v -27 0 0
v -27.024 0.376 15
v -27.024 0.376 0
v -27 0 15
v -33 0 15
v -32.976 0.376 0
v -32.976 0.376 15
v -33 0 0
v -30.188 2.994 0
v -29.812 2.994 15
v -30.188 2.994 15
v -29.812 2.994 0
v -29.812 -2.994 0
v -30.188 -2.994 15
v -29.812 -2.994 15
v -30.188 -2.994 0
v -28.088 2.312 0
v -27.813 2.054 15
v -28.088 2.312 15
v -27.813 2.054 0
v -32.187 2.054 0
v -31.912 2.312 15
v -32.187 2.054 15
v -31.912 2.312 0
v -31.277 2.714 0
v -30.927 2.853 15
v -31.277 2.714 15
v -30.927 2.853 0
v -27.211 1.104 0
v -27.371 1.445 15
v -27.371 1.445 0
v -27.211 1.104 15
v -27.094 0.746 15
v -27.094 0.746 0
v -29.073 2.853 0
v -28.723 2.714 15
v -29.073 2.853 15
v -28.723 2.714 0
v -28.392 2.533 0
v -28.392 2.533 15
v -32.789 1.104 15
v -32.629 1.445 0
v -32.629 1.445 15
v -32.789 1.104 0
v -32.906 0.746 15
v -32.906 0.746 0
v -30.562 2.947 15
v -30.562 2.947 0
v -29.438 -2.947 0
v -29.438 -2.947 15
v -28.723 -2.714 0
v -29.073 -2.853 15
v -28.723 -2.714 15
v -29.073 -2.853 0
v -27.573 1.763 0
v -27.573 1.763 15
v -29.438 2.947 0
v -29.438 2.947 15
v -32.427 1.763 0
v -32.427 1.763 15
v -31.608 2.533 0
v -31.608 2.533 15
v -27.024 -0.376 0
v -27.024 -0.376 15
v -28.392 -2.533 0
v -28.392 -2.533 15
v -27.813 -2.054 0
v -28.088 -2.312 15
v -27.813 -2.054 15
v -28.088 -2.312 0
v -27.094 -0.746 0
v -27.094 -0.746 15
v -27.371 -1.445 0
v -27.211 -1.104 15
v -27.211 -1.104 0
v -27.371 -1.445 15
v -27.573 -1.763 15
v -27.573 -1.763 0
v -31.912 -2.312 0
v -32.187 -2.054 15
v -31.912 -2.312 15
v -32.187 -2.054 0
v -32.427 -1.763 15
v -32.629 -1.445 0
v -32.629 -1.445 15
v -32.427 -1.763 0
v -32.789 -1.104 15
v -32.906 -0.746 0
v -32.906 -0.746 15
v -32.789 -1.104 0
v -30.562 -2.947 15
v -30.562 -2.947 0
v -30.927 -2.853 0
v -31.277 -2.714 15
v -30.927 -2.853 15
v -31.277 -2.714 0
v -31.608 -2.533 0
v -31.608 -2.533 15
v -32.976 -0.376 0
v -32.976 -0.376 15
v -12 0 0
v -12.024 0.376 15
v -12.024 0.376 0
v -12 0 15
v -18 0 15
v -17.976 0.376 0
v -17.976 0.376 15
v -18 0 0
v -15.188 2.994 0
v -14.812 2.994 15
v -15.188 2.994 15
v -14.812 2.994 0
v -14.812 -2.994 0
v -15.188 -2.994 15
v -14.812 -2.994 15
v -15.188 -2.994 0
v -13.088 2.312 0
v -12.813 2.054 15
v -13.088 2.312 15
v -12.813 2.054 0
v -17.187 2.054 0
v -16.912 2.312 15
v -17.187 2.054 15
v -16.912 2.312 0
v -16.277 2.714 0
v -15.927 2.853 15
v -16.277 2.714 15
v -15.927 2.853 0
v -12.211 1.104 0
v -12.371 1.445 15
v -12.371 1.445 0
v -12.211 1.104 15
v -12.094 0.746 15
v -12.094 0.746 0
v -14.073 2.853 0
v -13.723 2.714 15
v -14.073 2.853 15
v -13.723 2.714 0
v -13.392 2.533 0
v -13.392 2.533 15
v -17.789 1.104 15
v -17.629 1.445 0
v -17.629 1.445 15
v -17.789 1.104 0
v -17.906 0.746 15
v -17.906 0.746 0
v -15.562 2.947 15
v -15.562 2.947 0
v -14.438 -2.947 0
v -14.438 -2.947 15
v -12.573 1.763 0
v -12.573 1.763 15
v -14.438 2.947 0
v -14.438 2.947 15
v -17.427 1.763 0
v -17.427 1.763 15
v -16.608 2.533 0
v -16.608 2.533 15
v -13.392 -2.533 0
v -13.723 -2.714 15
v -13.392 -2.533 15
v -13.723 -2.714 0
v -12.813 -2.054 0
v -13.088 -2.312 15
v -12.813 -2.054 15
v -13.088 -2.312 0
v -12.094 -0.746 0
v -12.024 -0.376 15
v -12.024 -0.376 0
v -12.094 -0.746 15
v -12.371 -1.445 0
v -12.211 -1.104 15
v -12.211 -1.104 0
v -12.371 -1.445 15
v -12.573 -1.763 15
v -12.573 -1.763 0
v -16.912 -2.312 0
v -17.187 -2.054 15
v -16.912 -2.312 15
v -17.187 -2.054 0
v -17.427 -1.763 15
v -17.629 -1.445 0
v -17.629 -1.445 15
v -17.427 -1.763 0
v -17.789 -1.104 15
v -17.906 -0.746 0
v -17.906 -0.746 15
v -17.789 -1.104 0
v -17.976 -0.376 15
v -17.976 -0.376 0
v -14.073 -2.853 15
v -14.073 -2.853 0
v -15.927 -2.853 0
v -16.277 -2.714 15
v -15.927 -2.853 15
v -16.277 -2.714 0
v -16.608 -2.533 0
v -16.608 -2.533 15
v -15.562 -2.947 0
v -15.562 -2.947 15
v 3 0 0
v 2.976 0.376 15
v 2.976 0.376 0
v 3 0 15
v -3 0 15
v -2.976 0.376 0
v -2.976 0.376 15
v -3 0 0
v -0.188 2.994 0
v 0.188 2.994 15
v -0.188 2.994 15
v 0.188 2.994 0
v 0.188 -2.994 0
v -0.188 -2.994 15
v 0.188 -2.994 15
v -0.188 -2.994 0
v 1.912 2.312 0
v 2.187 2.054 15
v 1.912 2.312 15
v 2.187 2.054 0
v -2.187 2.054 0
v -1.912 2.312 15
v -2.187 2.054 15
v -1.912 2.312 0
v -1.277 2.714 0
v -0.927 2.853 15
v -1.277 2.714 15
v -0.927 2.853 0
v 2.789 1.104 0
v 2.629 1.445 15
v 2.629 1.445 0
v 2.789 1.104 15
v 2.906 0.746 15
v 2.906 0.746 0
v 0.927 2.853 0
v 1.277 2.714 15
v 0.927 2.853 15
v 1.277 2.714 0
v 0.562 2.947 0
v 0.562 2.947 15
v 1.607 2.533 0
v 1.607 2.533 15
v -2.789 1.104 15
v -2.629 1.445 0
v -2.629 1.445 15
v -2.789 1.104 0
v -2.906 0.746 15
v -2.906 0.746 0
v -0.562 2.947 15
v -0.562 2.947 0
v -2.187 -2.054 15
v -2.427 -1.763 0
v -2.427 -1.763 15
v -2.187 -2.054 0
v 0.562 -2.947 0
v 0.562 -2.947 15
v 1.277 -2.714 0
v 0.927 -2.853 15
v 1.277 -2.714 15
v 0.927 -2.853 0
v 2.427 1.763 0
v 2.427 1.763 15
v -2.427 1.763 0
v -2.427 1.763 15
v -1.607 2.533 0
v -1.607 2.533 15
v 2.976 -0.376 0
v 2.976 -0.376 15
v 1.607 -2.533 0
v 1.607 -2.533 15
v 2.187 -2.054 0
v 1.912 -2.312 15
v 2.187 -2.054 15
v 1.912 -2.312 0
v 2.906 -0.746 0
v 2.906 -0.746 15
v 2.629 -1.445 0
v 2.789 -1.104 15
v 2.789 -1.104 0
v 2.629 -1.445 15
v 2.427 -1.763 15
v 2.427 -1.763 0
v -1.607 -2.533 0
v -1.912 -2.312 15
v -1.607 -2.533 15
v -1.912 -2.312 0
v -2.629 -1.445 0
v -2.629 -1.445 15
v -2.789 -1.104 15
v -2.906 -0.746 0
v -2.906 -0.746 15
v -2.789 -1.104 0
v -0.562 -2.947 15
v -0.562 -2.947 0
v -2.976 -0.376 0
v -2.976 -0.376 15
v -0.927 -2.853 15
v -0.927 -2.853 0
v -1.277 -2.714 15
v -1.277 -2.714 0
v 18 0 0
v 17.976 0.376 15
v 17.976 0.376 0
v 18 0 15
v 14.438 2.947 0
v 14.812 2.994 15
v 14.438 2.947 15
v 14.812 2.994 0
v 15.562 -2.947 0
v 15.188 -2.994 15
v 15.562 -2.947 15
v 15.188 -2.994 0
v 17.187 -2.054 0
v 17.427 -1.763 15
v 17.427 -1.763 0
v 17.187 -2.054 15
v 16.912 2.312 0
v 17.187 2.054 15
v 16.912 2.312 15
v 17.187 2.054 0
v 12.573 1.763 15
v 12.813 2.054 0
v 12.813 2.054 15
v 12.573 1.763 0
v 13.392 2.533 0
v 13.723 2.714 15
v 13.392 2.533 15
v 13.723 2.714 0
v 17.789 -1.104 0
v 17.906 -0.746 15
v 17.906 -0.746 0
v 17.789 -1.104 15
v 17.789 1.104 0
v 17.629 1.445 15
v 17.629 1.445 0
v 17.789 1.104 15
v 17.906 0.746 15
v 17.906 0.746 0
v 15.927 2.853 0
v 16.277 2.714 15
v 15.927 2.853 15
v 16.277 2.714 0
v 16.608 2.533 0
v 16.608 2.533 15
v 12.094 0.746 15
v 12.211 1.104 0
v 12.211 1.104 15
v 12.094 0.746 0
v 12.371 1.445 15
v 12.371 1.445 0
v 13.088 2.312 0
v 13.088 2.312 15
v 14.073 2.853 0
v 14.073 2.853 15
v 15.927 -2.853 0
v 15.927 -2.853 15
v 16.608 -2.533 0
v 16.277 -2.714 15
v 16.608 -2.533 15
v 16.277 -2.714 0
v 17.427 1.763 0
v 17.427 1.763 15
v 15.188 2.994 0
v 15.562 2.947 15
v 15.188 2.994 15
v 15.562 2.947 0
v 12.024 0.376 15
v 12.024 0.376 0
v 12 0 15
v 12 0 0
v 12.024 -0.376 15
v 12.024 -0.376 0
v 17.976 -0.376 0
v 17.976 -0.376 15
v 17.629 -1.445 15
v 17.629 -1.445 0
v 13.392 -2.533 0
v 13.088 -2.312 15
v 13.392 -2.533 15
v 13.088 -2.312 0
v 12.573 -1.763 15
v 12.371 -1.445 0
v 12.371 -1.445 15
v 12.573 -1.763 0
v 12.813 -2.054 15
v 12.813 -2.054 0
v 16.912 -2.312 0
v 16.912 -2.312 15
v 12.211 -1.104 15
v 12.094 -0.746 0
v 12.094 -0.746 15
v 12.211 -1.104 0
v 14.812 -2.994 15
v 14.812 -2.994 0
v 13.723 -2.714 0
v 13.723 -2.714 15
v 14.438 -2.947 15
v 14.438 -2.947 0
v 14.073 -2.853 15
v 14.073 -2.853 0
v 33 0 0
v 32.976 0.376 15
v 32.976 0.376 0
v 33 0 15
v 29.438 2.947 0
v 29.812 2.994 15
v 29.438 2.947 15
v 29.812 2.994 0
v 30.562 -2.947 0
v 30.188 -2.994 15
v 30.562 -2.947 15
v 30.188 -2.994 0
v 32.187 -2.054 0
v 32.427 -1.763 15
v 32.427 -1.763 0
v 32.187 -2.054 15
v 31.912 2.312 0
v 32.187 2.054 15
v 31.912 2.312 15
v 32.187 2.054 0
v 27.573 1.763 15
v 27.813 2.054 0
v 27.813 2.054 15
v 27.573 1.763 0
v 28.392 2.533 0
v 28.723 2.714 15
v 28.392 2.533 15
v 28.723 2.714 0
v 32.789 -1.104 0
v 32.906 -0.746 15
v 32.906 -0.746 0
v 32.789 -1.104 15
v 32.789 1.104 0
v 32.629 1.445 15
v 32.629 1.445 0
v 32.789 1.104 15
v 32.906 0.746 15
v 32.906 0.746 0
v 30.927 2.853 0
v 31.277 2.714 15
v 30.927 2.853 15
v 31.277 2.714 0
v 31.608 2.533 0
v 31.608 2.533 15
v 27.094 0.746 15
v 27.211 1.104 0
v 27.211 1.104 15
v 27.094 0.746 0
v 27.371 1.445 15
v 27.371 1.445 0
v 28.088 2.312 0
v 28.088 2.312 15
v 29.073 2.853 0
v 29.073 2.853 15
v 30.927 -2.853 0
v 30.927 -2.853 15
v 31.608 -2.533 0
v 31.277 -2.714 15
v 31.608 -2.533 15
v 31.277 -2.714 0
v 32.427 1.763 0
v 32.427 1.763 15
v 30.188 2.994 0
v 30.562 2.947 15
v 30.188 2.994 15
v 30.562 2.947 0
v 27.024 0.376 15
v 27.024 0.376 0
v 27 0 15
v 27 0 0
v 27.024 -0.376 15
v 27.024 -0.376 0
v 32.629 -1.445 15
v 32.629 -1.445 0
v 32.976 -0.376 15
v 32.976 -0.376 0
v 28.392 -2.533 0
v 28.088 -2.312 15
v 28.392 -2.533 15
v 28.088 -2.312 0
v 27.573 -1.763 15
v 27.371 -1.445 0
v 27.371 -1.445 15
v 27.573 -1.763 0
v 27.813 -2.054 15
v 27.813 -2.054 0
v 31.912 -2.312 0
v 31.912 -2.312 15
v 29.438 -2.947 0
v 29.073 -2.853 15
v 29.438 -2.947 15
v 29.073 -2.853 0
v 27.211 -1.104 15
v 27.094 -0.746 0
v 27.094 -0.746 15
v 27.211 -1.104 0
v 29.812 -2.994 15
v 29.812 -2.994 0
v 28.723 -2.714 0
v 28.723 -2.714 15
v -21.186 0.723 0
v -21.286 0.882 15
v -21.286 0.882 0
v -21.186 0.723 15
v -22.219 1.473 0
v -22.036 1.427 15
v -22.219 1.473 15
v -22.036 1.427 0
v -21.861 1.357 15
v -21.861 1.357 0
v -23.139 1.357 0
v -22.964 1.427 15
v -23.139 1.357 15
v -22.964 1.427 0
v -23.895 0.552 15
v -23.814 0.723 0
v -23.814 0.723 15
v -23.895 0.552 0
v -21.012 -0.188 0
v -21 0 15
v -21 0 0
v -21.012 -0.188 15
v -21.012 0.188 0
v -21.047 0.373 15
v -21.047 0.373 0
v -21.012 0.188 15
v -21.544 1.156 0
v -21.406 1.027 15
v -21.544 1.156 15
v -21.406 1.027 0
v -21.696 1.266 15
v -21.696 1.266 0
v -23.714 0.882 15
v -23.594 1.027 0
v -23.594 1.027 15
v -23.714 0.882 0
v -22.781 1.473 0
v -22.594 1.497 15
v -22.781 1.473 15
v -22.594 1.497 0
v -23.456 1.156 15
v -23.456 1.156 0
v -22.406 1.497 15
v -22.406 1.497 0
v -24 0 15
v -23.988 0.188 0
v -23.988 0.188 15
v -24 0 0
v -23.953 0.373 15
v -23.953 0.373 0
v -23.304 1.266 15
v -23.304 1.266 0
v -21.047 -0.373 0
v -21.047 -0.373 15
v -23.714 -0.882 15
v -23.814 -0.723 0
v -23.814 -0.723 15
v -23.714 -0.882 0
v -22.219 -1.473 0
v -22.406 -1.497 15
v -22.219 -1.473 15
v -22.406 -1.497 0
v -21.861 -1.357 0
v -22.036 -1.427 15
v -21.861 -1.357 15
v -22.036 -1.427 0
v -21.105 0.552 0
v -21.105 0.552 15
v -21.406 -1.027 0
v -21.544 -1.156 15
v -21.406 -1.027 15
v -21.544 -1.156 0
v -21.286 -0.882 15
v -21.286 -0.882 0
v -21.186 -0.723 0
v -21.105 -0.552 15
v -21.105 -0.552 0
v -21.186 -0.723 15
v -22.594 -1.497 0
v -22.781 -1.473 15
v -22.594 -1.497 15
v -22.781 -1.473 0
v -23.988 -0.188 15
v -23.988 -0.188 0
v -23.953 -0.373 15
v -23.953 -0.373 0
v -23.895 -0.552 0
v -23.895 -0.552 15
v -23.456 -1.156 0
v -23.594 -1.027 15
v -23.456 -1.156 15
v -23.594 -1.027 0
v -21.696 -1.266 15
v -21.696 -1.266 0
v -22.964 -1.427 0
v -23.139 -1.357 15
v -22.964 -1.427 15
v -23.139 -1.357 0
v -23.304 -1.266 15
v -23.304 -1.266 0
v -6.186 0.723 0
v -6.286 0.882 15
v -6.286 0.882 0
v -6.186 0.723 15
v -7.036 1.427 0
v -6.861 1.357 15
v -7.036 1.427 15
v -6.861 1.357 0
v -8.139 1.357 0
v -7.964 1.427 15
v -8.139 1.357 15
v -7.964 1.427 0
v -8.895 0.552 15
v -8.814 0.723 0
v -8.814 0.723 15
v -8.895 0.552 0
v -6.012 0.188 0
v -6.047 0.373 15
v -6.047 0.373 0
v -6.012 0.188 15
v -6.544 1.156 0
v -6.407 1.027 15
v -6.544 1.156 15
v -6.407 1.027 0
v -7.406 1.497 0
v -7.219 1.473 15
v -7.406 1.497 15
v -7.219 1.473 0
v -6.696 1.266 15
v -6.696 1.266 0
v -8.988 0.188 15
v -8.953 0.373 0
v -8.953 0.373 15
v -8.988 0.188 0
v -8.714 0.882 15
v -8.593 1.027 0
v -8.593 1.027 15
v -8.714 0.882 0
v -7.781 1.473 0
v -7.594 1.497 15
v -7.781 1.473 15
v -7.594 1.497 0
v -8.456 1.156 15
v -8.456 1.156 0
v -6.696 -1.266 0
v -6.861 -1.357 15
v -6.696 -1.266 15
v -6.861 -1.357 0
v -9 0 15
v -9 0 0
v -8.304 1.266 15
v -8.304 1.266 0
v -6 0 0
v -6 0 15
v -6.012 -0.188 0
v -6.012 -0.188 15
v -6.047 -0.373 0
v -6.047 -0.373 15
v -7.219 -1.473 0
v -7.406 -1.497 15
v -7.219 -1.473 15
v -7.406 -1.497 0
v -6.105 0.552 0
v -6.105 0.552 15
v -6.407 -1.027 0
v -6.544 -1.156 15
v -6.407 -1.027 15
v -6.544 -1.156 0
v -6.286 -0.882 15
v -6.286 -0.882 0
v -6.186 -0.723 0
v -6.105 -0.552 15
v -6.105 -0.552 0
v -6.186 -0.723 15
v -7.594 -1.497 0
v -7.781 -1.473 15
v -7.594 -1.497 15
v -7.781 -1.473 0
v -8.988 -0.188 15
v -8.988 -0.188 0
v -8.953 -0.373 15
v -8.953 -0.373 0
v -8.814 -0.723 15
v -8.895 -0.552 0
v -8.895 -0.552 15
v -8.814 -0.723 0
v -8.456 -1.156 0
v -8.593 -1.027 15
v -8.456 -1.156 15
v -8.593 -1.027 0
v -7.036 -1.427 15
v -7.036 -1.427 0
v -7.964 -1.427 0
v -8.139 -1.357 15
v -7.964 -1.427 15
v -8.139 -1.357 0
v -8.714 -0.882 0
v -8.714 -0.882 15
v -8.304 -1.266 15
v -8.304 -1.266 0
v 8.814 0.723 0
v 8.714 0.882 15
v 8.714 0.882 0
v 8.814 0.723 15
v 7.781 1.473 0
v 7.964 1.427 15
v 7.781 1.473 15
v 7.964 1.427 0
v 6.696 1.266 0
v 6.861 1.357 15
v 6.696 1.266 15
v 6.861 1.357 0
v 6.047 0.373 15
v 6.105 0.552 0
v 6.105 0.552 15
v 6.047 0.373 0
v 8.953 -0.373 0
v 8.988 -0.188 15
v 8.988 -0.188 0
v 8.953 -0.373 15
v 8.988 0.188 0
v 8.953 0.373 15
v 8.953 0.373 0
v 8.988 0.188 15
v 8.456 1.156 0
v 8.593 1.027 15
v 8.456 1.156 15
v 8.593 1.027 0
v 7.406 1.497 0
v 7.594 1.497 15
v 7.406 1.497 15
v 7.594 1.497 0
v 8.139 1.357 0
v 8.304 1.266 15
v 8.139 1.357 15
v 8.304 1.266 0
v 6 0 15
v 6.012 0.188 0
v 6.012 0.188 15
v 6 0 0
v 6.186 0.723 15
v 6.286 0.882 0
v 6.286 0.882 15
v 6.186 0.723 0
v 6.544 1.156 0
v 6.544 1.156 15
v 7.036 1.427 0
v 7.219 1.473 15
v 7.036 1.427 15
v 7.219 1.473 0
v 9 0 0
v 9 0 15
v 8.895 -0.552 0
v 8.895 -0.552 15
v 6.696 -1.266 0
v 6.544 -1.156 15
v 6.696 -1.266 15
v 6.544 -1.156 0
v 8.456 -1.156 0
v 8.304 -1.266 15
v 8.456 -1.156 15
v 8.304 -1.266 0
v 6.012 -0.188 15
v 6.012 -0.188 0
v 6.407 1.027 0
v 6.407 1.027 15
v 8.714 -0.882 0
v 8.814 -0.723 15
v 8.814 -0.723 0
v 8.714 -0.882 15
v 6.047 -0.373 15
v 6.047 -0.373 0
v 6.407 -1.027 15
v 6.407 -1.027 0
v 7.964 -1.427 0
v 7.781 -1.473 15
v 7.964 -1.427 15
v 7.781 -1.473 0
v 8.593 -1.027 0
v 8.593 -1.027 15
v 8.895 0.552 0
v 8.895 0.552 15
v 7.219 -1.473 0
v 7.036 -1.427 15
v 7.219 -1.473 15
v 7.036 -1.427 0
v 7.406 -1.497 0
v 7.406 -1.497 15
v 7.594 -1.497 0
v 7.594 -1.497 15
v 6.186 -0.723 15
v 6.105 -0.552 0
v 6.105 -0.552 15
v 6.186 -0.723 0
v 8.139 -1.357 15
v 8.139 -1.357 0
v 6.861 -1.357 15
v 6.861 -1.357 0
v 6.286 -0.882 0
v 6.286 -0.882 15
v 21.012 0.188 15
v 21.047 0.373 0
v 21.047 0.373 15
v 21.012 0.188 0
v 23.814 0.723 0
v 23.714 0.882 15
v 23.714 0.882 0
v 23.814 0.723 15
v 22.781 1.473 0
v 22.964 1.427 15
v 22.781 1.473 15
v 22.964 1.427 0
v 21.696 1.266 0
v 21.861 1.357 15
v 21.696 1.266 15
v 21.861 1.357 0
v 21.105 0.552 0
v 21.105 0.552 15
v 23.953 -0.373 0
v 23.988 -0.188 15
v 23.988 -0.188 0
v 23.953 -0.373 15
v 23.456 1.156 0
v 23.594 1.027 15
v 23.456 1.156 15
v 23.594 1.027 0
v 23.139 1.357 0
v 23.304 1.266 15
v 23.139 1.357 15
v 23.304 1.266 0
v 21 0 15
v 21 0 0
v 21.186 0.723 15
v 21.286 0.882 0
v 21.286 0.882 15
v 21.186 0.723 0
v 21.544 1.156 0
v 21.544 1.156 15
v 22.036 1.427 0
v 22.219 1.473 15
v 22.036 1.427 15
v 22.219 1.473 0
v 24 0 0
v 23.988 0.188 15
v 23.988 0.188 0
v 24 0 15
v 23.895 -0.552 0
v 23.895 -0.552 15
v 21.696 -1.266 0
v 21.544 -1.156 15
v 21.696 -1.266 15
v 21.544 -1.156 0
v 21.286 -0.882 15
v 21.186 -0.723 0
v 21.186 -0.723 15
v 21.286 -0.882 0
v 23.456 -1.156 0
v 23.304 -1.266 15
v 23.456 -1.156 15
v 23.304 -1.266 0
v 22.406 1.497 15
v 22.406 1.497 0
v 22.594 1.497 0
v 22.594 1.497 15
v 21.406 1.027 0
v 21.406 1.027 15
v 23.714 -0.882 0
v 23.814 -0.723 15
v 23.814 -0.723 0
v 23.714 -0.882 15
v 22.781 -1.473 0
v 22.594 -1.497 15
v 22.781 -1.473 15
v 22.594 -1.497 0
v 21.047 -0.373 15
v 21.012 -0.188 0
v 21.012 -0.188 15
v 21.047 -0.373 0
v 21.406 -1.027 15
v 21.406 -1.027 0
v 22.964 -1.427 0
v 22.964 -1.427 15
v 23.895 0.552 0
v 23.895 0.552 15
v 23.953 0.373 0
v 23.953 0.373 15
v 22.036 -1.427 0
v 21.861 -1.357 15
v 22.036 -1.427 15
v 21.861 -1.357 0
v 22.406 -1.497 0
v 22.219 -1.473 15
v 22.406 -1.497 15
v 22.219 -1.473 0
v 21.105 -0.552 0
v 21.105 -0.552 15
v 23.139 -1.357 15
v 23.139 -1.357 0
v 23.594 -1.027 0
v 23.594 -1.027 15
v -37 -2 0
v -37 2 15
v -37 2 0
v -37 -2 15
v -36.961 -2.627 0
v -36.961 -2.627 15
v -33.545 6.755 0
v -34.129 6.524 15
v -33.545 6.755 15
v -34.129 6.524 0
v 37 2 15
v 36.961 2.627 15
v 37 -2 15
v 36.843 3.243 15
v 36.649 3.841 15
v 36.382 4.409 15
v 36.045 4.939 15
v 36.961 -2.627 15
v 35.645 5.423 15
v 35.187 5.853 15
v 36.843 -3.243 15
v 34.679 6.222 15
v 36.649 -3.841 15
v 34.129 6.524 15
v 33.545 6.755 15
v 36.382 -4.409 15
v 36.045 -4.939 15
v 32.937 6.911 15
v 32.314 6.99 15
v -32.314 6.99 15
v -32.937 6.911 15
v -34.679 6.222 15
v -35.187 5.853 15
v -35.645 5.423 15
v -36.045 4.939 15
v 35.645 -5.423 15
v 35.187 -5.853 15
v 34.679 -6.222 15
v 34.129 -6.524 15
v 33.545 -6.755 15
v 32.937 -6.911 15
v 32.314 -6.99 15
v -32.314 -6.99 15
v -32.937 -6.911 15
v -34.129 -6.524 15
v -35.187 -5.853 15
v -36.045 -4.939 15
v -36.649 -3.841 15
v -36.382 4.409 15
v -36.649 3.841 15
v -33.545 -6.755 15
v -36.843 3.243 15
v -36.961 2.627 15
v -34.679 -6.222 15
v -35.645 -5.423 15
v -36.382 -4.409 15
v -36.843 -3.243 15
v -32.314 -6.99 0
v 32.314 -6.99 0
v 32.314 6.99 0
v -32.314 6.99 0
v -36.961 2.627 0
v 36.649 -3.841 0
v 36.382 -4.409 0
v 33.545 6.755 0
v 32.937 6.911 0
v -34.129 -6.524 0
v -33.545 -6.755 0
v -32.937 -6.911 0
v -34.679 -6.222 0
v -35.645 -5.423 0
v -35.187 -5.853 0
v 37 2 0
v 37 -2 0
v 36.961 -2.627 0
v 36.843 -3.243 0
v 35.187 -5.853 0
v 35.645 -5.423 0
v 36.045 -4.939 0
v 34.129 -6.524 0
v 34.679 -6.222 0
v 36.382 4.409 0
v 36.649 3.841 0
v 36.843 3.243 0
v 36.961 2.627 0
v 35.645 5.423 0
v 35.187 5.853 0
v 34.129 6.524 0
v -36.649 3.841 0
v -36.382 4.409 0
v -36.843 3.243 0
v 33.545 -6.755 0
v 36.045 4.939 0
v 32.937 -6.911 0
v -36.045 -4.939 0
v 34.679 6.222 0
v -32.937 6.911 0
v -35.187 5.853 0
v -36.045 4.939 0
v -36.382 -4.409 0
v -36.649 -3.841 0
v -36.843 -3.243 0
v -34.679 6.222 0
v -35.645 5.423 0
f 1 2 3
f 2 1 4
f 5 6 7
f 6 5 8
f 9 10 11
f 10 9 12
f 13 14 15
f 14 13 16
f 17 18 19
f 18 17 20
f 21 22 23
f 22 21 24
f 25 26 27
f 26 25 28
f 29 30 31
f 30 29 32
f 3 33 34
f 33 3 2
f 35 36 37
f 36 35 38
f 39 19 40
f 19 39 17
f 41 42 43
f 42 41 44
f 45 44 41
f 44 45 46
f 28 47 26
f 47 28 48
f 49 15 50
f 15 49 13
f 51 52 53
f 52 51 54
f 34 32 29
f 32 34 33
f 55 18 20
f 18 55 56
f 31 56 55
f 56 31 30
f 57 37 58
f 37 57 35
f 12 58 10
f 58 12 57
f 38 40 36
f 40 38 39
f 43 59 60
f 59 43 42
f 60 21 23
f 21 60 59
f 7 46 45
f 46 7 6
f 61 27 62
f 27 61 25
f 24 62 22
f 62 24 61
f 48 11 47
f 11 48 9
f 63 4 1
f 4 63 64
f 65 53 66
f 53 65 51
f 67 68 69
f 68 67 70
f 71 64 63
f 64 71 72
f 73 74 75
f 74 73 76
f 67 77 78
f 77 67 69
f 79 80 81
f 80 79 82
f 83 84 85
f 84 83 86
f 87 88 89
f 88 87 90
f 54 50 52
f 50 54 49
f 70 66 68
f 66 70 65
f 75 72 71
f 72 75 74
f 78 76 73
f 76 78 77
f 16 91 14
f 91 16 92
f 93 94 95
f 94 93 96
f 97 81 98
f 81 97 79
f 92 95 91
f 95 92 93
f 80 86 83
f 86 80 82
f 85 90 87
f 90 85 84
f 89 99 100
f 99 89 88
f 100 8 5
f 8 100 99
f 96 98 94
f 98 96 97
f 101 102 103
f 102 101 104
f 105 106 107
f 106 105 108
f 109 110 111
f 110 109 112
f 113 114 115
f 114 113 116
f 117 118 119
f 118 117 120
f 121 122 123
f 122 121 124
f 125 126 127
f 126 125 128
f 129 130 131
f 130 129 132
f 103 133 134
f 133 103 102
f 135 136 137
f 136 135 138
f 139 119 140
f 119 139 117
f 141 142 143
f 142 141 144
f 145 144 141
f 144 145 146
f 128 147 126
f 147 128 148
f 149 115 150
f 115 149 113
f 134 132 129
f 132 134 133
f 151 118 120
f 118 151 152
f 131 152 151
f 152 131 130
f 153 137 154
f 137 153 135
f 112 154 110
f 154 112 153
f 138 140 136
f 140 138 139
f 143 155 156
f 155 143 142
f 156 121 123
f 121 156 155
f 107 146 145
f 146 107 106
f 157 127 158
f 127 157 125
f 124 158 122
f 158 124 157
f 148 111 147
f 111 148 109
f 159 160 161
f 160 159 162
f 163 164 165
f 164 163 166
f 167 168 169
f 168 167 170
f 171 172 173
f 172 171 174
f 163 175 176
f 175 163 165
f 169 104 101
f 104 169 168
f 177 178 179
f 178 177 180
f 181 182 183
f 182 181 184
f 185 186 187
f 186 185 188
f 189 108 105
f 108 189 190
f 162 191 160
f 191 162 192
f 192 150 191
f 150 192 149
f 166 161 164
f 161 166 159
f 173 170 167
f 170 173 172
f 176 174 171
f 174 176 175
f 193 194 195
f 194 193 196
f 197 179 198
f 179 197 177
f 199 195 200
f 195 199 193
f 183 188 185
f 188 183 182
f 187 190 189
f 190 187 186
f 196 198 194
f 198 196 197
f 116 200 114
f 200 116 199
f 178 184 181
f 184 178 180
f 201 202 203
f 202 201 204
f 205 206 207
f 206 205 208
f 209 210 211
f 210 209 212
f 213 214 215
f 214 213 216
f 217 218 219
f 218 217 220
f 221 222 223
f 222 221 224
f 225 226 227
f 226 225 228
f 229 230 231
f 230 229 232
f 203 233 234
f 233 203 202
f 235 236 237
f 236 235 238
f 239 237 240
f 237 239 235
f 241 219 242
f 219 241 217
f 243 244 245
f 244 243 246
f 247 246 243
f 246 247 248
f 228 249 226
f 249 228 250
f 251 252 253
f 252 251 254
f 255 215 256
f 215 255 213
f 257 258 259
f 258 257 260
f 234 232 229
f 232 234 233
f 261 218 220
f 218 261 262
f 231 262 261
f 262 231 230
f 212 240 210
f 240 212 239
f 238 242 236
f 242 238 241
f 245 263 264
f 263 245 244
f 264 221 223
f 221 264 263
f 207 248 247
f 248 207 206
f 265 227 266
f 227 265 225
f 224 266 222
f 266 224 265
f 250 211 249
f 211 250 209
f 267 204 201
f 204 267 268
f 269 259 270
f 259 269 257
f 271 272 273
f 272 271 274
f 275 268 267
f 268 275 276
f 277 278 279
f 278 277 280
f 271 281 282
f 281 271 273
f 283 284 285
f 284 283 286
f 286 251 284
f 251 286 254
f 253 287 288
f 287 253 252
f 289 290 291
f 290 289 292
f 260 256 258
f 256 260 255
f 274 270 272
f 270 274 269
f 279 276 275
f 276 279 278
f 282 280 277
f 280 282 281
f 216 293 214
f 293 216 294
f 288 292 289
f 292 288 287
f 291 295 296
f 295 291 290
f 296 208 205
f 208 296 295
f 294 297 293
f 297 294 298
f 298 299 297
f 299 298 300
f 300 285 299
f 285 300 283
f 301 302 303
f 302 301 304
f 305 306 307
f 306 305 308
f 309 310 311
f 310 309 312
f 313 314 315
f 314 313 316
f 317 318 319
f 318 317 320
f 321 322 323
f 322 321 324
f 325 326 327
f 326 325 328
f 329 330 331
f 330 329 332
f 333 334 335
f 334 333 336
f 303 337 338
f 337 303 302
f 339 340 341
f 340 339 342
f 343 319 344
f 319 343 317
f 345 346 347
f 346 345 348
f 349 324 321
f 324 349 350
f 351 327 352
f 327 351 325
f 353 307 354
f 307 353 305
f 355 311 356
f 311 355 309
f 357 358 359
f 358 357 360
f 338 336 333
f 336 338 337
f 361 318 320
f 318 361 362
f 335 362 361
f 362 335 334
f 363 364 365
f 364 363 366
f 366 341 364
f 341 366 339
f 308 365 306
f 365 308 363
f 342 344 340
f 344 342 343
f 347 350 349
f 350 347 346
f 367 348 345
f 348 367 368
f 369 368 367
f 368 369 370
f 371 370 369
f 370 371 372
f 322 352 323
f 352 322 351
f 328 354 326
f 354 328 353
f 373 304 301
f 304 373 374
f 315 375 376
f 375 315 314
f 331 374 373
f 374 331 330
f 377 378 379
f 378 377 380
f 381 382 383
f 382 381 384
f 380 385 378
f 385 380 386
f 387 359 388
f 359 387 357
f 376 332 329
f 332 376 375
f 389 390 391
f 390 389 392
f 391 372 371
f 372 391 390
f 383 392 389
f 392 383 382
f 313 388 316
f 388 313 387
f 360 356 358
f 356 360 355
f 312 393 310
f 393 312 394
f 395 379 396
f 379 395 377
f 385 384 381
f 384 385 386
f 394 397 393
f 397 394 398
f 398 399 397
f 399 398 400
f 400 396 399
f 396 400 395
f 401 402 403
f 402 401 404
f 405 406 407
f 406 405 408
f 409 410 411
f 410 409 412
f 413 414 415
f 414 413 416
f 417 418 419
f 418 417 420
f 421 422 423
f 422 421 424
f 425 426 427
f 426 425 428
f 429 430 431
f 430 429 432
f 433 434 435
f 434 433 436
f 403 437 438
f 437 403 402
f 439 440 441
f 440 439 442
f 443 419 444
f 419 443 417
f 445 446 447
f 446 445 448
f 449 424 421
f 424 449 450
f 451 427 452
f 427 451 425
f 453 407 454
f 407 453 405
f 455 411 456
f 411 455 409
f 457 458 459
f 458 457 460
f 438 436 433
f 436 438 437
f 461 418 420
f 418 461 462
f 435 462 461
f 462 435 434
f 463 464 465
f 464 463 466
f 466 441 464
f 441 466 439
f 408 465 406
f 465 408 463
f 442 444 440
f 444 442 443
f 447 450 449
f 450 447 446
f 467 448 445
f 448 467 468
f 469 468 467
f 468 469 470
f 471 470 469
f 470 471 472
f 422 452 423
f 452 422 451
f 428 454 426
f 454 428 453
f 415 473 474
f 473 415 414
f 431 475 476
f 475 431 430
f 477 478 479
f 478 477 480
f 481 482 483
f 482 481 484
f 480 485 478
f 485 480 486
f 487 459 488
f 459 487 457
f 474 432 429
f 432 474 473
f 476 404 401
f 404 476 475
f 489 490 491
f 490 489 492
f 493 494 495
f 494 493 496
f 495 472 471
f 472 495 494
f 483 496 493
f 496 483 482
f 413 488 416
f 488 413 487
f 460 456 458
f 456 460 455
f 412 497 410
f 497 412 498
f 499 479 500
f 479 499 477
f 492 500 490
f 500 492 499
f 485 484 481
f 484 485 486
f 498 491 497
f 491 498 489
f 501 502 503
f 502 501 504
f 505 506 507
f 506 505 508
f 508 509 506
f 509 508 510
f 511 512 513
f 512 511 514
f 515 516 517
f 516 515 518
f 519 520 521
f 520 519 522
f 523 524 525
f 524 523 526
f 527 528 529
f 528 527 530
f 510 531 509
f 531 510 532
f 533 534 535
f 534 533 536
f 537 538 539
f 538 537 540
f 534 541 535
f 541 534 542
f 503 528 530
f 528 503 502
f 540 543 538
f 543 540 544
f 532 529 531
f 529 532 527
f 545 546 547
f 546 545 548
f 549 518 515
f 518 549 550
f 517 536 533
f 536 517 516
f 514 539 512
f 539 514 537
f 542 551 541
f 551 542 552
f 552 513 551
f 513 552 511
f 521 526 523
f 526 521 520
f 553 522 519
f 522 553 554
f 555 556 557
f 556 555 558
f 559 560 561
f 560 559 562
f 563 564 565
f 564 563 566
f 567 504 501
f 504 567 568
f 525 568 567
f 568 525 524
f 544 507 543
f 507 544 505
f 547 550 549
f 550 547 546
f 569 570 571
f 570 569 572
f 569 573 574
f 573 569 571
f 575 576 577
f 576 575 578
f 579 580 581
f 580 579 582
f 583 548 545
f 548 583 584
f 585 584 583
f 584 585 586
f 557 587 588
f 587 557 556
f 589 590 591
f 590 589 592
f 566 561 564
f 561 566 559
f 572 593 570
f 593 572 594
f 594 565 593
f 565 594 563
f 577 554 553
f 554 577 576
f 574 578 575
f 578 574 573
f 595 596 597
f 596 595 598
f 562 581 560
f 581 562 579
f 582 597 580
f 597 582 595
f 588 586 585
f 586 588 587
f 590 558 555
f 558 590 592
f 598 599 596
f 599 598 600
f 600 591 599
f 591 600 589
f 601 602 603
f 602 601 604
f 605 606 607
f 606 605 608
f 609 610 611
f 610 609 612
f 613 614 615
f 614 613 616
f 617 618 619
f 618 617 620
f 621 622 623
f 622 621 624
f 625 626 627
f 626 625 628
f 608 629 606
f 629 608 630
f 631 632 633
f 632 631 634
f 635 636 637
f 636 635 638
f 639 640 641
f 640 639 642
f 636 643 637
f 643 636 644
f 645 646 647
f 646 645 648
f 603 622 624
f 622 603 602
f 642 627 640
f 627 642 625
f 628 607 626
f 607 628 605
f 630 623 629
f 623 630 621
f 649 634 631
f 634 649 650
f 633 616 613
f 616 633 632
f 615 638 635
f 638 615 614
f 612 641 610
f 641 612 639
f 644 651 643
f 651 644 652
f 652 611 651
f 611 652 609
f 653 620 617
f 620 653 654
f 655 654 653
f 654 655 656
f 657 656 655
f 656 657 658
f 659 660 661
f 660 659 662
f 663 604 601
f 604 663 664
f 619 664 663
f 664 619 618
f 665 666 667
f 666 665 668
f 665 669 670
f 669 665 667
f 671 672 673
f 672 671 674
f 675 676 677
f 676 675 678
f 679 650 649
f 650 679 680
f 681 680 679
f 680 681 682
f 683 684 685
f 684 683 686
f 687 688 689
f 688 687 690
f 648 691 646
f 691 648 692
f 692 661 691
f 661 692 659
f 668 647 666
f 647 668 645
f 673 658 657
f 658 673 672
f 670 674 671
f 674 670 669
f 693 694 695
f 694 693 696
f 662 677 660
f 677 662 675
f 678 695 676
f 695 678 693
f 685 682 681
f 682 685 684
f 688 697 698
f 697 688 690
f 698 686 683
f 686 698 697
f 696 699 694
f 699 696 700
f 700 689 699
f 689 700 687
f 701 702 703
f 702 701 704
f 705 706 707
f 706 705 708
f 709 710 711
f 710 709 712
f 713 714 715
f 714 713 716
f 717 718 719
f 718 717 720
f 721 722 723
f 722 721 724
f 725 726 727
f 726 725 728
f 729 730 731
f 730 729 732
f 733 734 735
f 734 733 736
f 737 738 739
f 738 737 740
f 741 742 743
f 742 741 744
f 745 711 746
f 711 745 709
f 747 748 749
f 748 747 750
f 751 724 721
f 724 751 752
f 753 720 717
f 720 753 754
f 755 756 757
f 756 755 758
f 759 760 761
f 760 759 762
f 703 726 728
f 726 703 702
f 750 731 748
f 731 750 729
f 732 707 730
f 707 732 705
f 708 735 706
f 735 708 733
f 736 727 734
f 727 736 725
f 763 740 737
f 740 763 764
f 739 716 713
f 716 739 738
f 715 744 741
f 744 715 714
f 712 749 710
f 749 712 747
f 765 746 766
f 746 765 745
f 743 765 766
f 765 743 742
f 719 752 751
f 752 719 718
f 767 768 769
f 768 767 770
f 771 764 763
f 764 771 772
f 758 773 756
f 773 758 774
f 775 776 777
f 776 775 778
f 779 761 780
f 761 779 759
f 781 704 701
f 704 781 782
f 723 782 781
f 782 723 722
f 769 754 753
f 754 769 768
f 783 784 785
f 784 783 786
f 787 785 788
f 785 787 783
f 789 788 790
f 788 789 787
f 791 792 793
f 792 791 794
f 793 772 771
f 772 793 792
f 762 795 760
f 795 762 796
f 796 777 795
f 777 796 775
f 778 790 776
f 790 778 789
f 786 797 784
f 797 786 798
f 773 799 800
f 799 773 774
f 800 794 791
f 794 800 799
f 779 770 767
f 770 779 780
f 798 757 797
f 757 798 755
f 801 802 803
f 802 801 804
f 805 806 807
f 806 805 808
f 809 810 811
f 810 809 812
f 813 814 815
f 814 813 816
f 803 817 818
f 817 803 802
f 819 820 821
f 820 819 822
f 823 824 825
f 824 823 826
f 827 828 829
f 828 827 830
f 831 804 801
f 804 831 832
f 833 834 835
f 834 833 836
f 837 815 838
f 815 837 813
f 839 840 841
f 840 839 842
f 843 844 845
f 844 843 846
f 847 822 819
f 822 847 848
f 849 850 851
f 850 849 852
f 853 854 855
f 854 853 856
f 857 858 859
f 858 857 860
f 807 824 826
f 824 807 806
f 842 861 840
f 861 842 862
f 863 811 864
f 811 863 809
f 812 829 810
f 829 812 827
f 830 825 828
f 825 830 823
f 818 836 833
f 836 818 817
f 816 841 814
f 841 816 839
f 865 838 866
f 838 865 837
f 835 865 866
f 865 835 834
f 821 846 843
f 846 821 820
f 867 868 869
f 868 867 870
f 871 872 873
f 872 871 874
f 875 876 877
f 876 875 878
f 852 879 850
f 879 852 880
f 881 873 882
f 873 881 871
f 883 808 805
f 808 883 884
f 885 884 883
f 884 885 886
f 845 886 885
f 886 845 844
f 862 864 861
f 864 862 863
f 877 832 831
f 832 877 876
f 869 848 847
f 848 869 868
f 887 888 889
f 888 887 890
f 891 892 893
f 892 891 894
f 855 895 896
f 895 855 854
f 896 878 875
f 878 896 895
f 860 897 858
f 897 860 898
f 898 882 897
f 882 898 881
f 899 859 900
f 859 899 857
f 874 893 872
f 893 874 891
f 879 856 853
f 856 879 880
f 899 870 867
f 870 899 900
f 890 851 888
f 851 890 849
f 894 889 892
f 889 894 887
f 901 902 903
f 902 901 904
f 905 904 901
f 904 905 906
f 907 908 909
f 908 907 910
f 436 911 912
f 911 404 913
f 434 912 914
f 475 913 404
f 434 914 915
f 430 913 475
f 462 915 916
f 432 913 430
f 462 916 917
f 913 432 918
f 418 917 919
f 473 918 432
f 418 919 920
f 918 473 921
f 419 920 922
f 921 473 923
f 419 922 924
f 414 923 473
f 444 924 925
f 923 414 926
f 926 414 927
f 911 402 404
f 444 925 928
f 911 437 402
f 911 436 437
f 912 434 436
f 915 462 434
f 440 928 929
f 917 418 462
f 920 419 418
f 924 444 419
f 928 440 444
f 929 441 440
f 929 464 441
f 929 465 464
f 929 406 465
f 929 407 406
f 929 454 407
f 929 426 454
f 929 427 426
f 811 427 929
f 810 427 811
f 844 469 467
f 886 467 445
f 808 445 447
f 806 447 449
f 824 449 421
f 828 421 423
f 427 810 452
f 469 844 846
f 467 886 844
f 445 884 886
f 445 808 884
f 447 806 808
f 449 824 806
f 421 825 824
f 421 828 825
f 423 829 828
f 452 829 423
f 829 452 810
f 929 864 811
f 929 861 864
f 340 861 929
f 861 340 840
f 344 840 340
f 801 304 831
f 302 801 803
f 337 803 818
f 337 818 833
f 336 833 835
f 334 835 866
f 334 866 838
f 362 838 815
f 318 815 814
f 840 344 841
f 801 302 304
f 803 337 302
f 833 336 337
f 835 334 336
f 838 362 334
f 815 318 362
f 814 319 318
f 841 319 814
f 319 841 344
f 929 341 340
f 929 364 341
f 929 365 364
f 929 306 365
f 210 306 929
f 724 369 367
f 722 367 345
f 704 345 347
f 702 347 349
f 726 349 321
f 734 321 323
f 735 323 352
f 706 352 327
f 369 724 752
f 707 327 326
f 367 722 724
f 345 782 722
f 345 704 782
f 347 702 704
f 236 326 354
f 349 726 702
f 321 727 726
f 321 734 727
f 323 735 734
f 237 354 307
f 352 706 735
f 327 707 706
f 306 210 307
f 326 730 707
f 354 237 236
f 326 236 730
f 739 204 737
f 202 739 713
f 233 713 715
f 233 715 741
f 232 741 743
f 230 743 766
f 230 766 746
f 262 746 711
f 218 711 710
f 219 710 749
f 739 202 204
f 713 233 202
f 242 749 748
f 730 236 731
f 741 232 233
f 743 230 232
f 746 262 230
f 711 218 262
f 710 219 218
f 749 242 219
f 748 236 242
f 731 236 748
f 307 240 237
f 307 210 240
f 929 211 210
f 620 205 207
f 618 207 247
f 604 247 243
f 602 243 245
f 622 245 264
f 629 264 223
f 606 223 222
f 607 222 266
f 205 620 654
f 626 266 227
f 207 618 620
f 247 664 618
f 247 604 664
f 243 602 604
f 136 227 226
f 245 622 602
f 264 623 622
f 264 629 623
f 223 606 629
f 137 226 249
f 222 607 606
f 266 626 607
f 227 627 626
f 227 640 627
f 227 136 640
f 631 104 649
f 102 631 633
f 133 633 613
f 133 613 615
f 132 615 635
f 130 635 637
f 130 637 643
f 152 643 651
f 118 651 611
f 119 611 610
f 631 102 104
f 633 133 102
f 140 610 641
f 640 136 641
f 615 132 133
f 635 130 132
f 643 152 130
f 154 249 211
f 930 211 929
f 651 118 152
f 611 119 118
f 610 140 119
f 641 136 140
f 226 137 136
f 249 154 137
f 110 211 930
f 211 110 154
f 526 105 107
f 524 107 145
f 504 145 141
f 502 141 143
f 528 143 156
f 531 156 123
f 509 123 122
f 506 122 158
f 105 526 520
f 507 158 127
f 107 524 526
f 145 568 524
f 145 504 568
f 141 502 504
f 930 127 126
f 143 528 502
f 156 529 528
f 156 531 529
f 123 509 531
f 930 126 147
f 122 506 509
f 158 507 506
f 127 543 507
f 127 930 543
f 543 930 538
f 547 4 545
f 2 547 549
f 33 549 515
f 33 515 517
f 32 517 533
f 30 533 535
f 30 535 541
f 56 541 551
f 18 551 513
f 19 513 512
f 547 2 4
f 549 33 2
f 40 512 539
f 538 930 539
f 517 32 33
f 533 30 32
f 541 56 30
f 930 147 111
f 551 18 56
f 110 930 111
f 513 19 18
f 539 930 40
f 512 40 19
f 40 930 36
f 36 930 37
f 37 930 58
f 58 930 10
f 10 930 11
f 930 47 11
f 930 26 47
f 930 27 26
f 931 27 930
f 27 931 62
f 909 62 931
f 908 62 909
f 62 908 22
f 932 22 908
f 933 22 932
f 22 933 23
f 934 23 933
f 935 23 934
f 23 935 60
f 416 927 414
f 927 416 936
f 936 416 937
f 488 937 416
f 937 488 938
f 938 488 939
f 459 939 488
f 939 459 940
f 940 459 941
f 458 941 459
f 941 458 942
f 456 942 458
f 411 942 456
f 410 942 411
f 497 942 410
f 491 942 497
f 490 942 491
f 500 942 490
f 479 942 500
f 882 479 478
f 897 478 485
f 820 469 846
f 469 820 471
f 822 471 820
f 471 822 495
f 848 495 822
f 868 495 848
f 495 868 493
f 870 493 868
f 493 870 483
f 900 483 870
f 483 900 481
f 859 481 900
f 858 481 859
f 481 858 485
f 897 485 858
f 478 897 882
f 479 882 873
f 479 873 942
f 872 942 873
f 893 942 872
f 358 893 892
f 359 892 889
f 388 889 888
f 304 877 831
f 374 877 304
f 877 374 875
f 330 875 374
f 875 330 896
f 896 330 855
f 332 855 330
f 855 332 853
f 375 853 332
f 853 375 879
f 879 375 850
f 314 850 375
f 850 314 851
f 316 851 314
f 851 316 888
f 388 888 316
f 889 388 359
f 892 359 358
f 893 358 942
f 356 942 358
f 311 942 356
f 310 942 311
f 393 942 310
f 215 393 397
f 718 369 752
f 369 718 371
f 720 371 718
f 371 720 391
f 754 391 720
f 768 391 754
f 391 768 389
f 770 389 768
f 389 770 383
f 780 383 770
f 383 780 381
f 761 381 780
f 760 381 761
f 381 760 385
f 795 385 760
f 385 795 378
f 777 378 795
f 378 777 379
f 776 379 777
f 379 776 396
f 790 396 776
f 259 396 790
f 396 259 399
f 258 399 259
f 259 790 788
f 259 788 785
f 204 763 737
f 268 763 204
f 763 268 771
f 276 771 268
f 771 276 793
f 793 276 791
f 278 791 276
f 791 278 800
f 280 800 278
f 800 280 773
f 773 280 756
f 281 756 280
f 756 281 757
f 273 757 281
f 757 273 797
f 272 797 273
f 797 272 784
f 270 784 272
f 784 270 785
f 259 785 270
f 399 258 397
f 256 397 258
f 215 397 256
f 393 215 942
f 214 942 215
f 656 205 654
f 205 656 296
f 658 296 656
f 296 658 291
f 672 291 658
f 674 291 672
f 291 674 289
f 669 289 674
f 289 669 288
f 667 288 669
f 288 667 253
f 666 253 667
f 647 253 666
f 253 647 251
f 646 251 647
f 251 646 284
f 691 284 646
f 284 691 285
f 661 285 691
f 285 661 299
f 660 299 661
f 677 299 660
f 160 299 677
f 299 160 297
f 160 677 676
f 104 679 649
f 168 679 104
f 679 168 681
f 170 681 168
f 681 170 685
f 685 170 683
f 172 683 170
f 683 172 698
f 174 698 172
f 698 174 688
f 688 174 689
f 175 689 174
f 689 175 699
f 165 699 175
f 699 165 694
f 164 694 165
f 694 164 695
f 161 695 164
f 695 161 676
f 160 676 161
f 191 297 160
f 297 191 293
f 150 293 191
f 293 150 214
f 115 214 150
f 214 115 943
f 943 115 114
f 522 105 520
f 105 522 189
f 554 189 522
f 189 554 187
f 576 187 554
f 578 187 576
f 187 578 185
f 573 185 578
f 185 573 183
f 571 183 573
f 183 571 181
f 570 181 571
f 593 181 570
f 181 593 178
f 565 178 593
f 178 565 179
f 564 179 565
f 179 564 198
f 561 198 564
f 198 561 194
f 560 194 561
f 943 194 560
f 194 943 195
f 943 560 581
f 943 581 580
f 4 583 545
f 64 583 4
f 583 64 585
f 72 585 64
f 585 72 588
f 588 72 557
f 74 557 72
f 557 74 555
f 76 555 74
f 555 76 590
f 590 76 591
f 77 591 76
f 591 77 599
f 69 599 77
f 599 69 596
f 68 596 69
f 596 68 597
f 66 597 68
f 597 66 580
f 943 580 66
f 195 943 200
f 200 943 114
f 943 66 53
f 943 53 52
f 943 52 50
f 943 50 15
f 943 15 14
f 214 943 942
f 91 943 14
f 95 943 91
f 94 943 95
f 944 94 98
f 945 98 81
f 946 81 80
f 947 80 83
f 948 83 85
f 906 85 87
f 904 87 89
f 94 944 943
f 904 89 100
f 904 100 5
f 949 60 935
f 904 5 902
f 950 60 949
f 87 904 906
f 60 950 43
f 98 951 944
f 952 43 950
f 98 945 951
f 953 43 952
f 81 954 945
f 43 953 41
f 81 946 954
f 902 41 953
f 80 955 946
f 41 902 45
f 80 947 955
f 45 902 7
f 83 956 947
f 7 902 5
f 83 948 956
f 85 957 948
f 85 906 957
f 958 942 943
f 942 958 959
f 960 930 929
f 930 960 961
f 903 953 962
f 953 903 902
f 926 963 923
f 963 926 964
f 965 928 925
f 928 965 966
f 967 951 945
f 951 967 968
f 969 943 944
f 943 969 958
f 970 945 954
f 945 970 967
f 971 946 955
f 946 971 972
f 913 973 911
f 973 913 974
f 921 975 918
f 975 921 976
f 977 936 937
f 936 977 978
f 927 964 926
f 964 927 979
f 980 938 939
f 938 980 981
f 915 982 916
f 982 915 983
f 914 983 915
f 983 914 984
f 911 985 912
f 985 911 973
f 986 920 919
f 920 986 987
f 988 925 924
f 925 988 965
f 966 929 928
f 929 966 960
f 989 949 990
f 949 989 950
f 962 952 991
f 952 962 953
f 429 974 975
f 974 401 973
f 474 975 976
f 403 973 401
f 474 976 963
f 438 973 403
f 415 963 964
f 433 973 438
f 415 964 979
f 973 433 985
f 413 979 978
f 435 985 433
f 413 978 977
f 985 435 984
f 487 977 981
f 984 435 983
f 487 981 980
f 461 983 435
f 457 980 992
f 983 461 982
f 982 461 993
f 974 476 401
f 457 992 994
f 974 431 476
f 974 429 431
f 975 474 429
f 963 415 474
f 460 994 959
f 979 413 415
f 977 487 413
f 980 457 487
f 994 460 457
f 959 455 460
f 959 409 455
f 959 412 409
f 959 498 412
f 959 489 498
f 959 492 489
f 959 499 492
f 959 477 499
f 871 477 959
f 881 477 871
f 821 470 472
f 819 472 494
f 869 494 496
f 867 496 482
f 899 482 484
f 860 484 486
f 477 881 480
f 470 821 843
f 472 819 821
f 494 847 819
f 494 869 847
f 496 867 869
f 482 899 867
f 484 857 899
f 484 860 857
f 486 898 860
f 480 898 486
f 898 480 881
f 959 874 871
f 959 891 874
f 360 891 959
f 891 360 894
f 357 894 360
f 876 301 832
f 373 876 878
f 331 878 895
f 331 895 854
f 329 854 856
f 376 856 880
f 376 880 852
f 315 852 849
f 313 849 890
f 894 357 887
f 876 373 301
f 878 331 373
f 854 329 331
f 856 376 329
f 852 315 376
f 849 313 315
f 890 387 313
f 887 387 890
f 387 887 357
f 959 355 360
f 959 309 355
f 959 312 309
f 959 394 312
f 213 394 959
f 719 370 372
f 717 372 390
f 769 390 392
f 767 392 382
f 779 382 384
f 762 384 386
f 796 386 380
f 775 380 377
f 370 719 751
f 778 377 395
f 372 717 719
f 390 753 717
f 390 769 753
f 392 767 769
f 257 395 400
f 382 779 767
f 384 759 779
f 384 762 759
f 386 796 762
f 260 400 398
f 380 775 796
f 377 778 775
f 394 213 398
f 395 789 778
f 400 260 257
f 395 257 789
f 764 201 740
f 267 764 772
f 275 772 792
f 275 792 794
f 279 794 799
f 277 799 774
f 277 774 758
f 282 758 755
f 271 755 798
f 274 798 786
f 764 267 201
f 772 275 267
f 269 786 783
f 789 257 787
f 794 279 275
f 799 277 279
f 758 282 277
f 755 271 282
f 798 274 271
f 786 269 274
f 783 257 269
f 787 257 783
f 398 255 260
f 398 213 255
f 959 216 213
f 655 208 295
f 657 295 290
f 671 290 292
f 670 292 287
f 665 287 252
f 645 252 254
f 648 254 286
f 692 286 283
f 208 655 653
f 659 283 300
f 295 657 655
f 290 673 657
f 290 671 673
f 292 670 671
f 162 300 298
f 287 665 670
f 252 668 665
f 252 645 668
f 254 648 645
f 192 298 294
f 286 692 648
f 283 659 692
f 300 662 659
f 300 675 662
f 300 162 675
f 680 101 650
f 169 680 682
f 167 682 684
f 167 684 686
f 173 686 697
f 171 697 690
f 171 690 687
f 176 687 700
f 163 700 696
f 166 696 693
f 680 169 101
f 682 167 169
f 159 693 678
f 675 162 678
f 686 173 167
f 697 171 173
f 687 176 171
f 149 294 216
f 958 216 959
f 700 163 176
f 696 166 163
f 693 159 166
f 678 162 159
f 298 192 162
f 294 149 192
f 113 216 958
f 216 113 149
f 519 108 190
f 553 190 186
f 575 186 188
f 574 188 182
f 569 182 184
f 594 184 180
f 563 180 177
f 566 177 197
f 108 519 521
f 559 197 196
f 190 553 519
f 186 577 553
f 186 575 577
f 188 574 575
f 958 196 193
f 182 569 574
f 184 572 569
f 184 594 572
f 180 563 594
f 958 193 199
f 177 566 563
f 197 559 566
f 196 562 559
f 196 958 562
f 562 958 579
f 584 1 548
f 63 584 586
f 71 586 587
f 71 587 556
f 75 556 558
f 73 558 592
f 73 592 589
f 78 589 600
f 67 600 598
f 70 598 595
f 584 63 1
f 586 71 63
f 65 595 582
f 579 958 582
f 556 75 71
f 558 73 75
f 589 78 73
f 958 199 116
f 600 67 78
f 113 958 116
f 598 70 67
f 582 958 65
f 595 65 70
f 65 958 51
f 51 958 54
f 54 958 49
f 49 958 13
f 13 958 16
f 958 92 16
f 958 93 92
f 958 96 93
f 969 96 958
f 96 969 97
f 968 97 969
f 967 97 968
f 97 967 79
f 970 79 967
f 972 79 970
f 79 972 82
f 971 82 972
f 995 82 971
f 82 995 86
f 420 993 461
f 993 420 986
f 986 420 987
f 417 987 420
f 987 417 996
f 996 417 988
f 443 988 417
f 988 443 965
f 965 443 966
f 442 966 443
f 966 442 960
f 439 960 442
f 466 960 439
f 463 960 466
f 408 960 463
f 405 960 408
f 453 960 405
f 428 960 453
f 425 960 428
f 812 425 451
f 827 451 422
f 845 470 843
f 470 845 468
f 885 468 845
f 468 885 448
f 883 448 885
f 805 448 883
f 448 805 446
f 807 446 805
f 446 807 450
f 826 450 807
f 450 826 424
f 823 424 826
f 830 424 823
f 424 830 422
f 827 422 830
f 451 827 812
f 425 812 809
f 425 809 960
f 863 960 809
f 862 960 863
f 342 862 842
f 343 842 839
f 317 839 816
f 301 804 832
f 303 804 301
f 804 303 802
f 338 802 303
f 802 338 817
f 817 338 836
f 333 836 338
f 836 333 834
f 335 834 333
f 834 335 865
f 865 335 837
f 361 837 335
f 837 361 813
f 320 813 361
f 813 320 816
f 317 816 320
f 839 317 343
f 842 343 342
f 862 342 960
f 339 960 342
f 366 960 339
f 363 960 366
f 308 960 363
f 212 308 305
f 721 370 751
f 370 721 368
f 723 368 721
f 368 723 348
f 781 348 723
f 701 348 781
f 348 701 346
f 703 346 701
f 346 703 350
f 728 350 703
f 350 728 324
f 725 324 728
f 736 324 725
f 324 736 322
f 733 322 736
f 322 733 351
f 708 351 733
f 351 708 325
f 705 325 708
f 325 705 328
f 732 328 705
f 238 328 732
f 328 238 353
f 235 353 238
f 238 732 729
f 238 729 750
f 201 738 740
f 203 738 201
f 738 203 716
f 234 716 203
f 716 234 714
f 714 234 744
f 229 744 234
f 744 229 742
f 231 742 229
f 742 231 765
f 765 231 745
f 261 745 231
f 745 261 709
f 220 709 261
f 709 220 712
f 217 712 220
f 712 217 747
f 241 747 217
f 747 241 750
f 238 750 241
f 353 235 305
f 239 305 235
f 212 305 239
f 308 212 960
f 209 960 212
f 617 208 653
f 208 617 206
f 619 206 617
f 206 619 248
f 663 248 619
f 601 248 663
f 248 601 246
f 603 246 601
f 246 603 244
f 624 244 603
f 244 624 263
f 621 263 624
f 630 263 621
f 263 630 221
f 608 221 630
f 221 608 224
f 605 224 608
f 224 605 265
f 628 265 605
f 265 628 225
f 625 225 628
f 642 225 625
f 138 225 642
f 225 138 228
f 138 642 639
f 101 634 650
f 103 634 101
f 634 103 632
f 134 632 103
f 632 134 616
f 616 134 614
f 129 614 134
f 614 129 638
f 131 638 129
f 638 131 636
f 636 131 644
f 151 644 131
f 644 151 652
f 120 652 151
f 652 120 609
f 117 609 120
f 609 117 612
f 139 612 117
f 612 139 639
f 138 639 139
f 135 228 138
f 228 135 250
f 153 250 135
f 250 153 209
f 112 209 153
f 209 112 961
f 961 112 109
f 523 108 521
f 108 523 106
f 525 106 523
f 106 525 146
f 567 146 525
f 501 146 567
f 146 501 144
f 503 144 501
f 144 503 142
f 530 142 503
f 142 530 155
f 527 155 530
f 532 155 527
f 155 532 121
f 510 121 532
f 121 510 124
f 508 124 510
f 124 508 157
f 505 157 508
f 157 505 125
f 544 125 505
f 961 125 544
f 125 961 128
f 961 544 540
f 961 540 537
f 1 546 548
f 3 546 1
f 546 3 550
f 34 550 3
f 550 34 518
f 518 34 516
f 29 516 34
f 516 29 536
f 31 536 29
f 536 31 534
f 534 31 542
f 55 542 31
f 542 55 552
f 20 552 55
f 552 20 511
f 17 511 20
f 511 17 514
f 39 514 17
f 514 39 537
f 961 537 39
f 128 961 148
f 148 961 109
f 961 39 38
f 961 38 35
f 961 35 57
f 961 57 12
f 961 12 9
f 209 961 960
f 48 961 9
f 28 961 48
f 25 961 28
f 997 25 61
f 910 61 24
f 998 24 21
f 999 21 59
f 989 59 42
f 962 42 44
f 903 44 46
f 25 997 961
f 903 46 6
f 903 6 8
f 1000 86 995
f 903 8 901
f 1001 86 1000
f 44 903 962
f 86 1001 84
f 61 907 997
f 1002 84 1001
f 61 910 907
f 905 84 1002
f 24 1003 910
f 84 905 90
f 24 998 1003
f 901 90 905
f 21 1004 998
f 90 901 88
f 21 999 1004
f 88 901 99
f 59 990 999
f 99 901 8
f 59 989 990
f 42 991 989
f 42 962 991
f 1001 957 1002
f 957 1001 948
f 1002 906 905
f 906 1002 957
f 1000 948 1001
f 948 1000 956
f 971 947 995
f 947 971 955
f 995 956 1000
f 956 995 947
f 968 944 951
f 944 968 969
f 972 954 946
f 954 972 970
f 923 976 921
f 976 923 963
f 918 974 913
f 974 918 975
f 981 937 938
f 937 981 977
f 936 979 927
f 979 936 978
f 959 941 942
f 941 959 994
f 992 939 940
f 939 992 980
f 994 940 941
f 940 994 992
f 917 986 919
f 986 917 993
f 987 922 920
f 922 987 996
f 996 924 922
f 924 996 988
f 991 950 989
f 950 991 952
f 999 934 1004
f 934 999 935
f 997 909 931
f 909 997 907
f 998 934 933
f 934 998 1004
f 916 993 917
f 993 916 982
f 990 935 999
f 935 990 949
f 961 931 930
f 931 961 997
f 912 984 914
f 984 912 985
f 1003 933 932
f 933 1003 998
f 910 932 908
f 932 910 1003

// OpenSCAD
$fn = 50;


difference() {
	union() {
		translate(v = [0, 0, 0]) {
			rotate(a = [0, 0, 0]) {
				hull() {
					translate(v = [-32.0000000000, 2.0000000000, 0]) {
						rotate(a = [0, 0, 0]) {
							translate(v = [0, 0, 0]) {
								rotate(a = [0, 0, 0]) {
									cylinder(h = 15, r = 5);
								}
							}
						}
					}
					translate(v = [32.0000000000, 2.0000000000, 0]) {
						rotate(a = [0, 0, 0]) {
							translate(v = [0, 0, 0]) {
								rotate(a = [0, 0, 0]) {
									cylinder(h = 15, r = 5);
								}
							}
						}
					}
					translate(v = [-32.0000000000, -2.0000000000, 0]) {
						rotate(a = [0, 0, 0]) {
							translate(v = [0, 0, 0]) {
								rotate(a = [0, 0, 0]) {
									cylinder(h = 15, r = 5);
								}
							}
						}
					}
					translate(v = [32.0000000000, -2.0000000000, 0]) {
						rotate(a = [0, 0, 0]) {
							translate(v = [0, 0, 0]) {
								rotate(a = [0, 0, 0]) {
									cylinder(h = 15, r = 5);
								}
							}
						}
					}
				}
			}
		}
	}
	union() {
		translate(v = [-30.0000000000, 0.0000000000, 0]) {
			rotate(a = [0, 0, 0]) {
				translate(v = [0, 0, -50]) {
					rotate(a = [0, 0, 0]) {
						cylinder(h = 100, r = 3.0000000000);
					}
				}
			}
		}
		translate(v = [-15.0000000000, 0.0000000000, 0]) {
			rotate(a = [0, 0, 0]) {
				translate(v = [0, 0, -50]) {
					rotate(a = [0, 0, 0]) {
						cylinder(h = 100, r = 3.0000000000);
					}
				}
			}
		}
		translate(v = [0.0000000000, 0.0000000000, 0]) {
			rotate(a = [0, 0, 0]) {
				translate(v = [0, 0, -50]) {
					rotate(a = [0, 0, 0]) {
						cylinder(h = 100, r = 3.0000000000);
					}
				}
			}
		}
		translate(v = [15.0000000000, 0.0000000000, 0]) {
			rotate(a = [0, 0, 0]) {
				translate(v = [0, 0, -50]) {
					rotate(a = [0, 0, 0]) {
						cylinder(h = 100, r = 3.0000000000);
					}
				}
			}
		}
		translate(v = [30.0000000000, 0.0000000000, 0]) {
			rotate(a = [0, 0, 0]) {
				translate(v = [0, 0, -50]) {
					rotate(a = [0, 0, 0]) {
						cylinder(h = 100, r = 3.0000000000);
					}
				}
			}
		}
		translate(v = [-30.0000000000, 0.0000000000, 0]) {
			rotate(a = [0, 0, 0]) {
				translate(v = [0, 0, -50]) {
					rotate(a = [0, 0, 0]) {
						cylinder(h = 100, r = 1.5000000000);
					}
				}
			}
		}
		translate(v = [-22.5000000000, 0.0000000000, 0]) {
			rotate(a = [0, 0, 0]) {
				translate(v = [0, 0, -50]) {
					rotate(a = [0, 0, 0]) {
						cylinder(h = 100, r = 1.5000000000);
					}
				}
			}
		}
		translate(v = [-15.0000000000, 0.0000000000, 0]) {
			rotate(a = [0, 0, 0]) {
				translate(v = [0, 0, -50]) {
					rotate(a = [0, 0, 0]) {
						cylinder(h = 100, r = 1.5000000000);
					}
				}
			}
		}
		translate(v = [-7.5000000000, 0.0000000000, 0]) {
			rotate(a = [0, 0, 0]) {
				translate(v = [0, 0, -50]) {
					rotate(a = [0, 0, 0]) {
						cylinder(h = 100, r = 1.5000000000);
					}
				}
			}
		}
		translate(v = [0.0000000000, 0.0000000000, 0]) {
			rotate(a = [0, 0, 0]) {
				translate(v = [0, 0, -50]) {
					rotate(a = [0, 0, 0]) {
						cylinder(h = 100, r = 1.5000000000);
					}
				}
			}
		}
		translate(v = [7.5000000000, 0.0000000000, 0]) {
			rotate(a = [0, 0, 0]) {
				translate(v = [0, 0, -50]) {
					rotate(a = [0, 0, 0]) {
						cylinder(h = 100, r = 1.5000000000);
					}
				}
			}
		}
		translate(v = [15.0000000000, 0.0000000000, 0]) {
			rotate(a = [0, 0, 0]) {
				translate(v = [0, 0, -50]) {
					rotate(a = [0, 0, 0]) {
						cylinder(h = 100, r = 1.5000000000);
					}
				}
			}
		}
		translate(v = [22.5000000000, 0.0000000000, 0]) {
			rotate(a = [0, 0, 0]) {
				translate(v = [0, 0, -50]) {
					rotate(a = [0, 0, 0]) {
						cylinder(h = 100, r = 1.5000000000);
					}
				}
			}
		}
		translate(v = [30.0000000000, 0.0000000000, 0]) {
			rotate(a = [0, 0, 0]) {
				translate(v = [0, 0, -50]) {
					rotate(a = [0, 0, 0]) {
						cylinder(h = 100, r = 1.5000000000);
					}
				}
			}
		}
	}
}
